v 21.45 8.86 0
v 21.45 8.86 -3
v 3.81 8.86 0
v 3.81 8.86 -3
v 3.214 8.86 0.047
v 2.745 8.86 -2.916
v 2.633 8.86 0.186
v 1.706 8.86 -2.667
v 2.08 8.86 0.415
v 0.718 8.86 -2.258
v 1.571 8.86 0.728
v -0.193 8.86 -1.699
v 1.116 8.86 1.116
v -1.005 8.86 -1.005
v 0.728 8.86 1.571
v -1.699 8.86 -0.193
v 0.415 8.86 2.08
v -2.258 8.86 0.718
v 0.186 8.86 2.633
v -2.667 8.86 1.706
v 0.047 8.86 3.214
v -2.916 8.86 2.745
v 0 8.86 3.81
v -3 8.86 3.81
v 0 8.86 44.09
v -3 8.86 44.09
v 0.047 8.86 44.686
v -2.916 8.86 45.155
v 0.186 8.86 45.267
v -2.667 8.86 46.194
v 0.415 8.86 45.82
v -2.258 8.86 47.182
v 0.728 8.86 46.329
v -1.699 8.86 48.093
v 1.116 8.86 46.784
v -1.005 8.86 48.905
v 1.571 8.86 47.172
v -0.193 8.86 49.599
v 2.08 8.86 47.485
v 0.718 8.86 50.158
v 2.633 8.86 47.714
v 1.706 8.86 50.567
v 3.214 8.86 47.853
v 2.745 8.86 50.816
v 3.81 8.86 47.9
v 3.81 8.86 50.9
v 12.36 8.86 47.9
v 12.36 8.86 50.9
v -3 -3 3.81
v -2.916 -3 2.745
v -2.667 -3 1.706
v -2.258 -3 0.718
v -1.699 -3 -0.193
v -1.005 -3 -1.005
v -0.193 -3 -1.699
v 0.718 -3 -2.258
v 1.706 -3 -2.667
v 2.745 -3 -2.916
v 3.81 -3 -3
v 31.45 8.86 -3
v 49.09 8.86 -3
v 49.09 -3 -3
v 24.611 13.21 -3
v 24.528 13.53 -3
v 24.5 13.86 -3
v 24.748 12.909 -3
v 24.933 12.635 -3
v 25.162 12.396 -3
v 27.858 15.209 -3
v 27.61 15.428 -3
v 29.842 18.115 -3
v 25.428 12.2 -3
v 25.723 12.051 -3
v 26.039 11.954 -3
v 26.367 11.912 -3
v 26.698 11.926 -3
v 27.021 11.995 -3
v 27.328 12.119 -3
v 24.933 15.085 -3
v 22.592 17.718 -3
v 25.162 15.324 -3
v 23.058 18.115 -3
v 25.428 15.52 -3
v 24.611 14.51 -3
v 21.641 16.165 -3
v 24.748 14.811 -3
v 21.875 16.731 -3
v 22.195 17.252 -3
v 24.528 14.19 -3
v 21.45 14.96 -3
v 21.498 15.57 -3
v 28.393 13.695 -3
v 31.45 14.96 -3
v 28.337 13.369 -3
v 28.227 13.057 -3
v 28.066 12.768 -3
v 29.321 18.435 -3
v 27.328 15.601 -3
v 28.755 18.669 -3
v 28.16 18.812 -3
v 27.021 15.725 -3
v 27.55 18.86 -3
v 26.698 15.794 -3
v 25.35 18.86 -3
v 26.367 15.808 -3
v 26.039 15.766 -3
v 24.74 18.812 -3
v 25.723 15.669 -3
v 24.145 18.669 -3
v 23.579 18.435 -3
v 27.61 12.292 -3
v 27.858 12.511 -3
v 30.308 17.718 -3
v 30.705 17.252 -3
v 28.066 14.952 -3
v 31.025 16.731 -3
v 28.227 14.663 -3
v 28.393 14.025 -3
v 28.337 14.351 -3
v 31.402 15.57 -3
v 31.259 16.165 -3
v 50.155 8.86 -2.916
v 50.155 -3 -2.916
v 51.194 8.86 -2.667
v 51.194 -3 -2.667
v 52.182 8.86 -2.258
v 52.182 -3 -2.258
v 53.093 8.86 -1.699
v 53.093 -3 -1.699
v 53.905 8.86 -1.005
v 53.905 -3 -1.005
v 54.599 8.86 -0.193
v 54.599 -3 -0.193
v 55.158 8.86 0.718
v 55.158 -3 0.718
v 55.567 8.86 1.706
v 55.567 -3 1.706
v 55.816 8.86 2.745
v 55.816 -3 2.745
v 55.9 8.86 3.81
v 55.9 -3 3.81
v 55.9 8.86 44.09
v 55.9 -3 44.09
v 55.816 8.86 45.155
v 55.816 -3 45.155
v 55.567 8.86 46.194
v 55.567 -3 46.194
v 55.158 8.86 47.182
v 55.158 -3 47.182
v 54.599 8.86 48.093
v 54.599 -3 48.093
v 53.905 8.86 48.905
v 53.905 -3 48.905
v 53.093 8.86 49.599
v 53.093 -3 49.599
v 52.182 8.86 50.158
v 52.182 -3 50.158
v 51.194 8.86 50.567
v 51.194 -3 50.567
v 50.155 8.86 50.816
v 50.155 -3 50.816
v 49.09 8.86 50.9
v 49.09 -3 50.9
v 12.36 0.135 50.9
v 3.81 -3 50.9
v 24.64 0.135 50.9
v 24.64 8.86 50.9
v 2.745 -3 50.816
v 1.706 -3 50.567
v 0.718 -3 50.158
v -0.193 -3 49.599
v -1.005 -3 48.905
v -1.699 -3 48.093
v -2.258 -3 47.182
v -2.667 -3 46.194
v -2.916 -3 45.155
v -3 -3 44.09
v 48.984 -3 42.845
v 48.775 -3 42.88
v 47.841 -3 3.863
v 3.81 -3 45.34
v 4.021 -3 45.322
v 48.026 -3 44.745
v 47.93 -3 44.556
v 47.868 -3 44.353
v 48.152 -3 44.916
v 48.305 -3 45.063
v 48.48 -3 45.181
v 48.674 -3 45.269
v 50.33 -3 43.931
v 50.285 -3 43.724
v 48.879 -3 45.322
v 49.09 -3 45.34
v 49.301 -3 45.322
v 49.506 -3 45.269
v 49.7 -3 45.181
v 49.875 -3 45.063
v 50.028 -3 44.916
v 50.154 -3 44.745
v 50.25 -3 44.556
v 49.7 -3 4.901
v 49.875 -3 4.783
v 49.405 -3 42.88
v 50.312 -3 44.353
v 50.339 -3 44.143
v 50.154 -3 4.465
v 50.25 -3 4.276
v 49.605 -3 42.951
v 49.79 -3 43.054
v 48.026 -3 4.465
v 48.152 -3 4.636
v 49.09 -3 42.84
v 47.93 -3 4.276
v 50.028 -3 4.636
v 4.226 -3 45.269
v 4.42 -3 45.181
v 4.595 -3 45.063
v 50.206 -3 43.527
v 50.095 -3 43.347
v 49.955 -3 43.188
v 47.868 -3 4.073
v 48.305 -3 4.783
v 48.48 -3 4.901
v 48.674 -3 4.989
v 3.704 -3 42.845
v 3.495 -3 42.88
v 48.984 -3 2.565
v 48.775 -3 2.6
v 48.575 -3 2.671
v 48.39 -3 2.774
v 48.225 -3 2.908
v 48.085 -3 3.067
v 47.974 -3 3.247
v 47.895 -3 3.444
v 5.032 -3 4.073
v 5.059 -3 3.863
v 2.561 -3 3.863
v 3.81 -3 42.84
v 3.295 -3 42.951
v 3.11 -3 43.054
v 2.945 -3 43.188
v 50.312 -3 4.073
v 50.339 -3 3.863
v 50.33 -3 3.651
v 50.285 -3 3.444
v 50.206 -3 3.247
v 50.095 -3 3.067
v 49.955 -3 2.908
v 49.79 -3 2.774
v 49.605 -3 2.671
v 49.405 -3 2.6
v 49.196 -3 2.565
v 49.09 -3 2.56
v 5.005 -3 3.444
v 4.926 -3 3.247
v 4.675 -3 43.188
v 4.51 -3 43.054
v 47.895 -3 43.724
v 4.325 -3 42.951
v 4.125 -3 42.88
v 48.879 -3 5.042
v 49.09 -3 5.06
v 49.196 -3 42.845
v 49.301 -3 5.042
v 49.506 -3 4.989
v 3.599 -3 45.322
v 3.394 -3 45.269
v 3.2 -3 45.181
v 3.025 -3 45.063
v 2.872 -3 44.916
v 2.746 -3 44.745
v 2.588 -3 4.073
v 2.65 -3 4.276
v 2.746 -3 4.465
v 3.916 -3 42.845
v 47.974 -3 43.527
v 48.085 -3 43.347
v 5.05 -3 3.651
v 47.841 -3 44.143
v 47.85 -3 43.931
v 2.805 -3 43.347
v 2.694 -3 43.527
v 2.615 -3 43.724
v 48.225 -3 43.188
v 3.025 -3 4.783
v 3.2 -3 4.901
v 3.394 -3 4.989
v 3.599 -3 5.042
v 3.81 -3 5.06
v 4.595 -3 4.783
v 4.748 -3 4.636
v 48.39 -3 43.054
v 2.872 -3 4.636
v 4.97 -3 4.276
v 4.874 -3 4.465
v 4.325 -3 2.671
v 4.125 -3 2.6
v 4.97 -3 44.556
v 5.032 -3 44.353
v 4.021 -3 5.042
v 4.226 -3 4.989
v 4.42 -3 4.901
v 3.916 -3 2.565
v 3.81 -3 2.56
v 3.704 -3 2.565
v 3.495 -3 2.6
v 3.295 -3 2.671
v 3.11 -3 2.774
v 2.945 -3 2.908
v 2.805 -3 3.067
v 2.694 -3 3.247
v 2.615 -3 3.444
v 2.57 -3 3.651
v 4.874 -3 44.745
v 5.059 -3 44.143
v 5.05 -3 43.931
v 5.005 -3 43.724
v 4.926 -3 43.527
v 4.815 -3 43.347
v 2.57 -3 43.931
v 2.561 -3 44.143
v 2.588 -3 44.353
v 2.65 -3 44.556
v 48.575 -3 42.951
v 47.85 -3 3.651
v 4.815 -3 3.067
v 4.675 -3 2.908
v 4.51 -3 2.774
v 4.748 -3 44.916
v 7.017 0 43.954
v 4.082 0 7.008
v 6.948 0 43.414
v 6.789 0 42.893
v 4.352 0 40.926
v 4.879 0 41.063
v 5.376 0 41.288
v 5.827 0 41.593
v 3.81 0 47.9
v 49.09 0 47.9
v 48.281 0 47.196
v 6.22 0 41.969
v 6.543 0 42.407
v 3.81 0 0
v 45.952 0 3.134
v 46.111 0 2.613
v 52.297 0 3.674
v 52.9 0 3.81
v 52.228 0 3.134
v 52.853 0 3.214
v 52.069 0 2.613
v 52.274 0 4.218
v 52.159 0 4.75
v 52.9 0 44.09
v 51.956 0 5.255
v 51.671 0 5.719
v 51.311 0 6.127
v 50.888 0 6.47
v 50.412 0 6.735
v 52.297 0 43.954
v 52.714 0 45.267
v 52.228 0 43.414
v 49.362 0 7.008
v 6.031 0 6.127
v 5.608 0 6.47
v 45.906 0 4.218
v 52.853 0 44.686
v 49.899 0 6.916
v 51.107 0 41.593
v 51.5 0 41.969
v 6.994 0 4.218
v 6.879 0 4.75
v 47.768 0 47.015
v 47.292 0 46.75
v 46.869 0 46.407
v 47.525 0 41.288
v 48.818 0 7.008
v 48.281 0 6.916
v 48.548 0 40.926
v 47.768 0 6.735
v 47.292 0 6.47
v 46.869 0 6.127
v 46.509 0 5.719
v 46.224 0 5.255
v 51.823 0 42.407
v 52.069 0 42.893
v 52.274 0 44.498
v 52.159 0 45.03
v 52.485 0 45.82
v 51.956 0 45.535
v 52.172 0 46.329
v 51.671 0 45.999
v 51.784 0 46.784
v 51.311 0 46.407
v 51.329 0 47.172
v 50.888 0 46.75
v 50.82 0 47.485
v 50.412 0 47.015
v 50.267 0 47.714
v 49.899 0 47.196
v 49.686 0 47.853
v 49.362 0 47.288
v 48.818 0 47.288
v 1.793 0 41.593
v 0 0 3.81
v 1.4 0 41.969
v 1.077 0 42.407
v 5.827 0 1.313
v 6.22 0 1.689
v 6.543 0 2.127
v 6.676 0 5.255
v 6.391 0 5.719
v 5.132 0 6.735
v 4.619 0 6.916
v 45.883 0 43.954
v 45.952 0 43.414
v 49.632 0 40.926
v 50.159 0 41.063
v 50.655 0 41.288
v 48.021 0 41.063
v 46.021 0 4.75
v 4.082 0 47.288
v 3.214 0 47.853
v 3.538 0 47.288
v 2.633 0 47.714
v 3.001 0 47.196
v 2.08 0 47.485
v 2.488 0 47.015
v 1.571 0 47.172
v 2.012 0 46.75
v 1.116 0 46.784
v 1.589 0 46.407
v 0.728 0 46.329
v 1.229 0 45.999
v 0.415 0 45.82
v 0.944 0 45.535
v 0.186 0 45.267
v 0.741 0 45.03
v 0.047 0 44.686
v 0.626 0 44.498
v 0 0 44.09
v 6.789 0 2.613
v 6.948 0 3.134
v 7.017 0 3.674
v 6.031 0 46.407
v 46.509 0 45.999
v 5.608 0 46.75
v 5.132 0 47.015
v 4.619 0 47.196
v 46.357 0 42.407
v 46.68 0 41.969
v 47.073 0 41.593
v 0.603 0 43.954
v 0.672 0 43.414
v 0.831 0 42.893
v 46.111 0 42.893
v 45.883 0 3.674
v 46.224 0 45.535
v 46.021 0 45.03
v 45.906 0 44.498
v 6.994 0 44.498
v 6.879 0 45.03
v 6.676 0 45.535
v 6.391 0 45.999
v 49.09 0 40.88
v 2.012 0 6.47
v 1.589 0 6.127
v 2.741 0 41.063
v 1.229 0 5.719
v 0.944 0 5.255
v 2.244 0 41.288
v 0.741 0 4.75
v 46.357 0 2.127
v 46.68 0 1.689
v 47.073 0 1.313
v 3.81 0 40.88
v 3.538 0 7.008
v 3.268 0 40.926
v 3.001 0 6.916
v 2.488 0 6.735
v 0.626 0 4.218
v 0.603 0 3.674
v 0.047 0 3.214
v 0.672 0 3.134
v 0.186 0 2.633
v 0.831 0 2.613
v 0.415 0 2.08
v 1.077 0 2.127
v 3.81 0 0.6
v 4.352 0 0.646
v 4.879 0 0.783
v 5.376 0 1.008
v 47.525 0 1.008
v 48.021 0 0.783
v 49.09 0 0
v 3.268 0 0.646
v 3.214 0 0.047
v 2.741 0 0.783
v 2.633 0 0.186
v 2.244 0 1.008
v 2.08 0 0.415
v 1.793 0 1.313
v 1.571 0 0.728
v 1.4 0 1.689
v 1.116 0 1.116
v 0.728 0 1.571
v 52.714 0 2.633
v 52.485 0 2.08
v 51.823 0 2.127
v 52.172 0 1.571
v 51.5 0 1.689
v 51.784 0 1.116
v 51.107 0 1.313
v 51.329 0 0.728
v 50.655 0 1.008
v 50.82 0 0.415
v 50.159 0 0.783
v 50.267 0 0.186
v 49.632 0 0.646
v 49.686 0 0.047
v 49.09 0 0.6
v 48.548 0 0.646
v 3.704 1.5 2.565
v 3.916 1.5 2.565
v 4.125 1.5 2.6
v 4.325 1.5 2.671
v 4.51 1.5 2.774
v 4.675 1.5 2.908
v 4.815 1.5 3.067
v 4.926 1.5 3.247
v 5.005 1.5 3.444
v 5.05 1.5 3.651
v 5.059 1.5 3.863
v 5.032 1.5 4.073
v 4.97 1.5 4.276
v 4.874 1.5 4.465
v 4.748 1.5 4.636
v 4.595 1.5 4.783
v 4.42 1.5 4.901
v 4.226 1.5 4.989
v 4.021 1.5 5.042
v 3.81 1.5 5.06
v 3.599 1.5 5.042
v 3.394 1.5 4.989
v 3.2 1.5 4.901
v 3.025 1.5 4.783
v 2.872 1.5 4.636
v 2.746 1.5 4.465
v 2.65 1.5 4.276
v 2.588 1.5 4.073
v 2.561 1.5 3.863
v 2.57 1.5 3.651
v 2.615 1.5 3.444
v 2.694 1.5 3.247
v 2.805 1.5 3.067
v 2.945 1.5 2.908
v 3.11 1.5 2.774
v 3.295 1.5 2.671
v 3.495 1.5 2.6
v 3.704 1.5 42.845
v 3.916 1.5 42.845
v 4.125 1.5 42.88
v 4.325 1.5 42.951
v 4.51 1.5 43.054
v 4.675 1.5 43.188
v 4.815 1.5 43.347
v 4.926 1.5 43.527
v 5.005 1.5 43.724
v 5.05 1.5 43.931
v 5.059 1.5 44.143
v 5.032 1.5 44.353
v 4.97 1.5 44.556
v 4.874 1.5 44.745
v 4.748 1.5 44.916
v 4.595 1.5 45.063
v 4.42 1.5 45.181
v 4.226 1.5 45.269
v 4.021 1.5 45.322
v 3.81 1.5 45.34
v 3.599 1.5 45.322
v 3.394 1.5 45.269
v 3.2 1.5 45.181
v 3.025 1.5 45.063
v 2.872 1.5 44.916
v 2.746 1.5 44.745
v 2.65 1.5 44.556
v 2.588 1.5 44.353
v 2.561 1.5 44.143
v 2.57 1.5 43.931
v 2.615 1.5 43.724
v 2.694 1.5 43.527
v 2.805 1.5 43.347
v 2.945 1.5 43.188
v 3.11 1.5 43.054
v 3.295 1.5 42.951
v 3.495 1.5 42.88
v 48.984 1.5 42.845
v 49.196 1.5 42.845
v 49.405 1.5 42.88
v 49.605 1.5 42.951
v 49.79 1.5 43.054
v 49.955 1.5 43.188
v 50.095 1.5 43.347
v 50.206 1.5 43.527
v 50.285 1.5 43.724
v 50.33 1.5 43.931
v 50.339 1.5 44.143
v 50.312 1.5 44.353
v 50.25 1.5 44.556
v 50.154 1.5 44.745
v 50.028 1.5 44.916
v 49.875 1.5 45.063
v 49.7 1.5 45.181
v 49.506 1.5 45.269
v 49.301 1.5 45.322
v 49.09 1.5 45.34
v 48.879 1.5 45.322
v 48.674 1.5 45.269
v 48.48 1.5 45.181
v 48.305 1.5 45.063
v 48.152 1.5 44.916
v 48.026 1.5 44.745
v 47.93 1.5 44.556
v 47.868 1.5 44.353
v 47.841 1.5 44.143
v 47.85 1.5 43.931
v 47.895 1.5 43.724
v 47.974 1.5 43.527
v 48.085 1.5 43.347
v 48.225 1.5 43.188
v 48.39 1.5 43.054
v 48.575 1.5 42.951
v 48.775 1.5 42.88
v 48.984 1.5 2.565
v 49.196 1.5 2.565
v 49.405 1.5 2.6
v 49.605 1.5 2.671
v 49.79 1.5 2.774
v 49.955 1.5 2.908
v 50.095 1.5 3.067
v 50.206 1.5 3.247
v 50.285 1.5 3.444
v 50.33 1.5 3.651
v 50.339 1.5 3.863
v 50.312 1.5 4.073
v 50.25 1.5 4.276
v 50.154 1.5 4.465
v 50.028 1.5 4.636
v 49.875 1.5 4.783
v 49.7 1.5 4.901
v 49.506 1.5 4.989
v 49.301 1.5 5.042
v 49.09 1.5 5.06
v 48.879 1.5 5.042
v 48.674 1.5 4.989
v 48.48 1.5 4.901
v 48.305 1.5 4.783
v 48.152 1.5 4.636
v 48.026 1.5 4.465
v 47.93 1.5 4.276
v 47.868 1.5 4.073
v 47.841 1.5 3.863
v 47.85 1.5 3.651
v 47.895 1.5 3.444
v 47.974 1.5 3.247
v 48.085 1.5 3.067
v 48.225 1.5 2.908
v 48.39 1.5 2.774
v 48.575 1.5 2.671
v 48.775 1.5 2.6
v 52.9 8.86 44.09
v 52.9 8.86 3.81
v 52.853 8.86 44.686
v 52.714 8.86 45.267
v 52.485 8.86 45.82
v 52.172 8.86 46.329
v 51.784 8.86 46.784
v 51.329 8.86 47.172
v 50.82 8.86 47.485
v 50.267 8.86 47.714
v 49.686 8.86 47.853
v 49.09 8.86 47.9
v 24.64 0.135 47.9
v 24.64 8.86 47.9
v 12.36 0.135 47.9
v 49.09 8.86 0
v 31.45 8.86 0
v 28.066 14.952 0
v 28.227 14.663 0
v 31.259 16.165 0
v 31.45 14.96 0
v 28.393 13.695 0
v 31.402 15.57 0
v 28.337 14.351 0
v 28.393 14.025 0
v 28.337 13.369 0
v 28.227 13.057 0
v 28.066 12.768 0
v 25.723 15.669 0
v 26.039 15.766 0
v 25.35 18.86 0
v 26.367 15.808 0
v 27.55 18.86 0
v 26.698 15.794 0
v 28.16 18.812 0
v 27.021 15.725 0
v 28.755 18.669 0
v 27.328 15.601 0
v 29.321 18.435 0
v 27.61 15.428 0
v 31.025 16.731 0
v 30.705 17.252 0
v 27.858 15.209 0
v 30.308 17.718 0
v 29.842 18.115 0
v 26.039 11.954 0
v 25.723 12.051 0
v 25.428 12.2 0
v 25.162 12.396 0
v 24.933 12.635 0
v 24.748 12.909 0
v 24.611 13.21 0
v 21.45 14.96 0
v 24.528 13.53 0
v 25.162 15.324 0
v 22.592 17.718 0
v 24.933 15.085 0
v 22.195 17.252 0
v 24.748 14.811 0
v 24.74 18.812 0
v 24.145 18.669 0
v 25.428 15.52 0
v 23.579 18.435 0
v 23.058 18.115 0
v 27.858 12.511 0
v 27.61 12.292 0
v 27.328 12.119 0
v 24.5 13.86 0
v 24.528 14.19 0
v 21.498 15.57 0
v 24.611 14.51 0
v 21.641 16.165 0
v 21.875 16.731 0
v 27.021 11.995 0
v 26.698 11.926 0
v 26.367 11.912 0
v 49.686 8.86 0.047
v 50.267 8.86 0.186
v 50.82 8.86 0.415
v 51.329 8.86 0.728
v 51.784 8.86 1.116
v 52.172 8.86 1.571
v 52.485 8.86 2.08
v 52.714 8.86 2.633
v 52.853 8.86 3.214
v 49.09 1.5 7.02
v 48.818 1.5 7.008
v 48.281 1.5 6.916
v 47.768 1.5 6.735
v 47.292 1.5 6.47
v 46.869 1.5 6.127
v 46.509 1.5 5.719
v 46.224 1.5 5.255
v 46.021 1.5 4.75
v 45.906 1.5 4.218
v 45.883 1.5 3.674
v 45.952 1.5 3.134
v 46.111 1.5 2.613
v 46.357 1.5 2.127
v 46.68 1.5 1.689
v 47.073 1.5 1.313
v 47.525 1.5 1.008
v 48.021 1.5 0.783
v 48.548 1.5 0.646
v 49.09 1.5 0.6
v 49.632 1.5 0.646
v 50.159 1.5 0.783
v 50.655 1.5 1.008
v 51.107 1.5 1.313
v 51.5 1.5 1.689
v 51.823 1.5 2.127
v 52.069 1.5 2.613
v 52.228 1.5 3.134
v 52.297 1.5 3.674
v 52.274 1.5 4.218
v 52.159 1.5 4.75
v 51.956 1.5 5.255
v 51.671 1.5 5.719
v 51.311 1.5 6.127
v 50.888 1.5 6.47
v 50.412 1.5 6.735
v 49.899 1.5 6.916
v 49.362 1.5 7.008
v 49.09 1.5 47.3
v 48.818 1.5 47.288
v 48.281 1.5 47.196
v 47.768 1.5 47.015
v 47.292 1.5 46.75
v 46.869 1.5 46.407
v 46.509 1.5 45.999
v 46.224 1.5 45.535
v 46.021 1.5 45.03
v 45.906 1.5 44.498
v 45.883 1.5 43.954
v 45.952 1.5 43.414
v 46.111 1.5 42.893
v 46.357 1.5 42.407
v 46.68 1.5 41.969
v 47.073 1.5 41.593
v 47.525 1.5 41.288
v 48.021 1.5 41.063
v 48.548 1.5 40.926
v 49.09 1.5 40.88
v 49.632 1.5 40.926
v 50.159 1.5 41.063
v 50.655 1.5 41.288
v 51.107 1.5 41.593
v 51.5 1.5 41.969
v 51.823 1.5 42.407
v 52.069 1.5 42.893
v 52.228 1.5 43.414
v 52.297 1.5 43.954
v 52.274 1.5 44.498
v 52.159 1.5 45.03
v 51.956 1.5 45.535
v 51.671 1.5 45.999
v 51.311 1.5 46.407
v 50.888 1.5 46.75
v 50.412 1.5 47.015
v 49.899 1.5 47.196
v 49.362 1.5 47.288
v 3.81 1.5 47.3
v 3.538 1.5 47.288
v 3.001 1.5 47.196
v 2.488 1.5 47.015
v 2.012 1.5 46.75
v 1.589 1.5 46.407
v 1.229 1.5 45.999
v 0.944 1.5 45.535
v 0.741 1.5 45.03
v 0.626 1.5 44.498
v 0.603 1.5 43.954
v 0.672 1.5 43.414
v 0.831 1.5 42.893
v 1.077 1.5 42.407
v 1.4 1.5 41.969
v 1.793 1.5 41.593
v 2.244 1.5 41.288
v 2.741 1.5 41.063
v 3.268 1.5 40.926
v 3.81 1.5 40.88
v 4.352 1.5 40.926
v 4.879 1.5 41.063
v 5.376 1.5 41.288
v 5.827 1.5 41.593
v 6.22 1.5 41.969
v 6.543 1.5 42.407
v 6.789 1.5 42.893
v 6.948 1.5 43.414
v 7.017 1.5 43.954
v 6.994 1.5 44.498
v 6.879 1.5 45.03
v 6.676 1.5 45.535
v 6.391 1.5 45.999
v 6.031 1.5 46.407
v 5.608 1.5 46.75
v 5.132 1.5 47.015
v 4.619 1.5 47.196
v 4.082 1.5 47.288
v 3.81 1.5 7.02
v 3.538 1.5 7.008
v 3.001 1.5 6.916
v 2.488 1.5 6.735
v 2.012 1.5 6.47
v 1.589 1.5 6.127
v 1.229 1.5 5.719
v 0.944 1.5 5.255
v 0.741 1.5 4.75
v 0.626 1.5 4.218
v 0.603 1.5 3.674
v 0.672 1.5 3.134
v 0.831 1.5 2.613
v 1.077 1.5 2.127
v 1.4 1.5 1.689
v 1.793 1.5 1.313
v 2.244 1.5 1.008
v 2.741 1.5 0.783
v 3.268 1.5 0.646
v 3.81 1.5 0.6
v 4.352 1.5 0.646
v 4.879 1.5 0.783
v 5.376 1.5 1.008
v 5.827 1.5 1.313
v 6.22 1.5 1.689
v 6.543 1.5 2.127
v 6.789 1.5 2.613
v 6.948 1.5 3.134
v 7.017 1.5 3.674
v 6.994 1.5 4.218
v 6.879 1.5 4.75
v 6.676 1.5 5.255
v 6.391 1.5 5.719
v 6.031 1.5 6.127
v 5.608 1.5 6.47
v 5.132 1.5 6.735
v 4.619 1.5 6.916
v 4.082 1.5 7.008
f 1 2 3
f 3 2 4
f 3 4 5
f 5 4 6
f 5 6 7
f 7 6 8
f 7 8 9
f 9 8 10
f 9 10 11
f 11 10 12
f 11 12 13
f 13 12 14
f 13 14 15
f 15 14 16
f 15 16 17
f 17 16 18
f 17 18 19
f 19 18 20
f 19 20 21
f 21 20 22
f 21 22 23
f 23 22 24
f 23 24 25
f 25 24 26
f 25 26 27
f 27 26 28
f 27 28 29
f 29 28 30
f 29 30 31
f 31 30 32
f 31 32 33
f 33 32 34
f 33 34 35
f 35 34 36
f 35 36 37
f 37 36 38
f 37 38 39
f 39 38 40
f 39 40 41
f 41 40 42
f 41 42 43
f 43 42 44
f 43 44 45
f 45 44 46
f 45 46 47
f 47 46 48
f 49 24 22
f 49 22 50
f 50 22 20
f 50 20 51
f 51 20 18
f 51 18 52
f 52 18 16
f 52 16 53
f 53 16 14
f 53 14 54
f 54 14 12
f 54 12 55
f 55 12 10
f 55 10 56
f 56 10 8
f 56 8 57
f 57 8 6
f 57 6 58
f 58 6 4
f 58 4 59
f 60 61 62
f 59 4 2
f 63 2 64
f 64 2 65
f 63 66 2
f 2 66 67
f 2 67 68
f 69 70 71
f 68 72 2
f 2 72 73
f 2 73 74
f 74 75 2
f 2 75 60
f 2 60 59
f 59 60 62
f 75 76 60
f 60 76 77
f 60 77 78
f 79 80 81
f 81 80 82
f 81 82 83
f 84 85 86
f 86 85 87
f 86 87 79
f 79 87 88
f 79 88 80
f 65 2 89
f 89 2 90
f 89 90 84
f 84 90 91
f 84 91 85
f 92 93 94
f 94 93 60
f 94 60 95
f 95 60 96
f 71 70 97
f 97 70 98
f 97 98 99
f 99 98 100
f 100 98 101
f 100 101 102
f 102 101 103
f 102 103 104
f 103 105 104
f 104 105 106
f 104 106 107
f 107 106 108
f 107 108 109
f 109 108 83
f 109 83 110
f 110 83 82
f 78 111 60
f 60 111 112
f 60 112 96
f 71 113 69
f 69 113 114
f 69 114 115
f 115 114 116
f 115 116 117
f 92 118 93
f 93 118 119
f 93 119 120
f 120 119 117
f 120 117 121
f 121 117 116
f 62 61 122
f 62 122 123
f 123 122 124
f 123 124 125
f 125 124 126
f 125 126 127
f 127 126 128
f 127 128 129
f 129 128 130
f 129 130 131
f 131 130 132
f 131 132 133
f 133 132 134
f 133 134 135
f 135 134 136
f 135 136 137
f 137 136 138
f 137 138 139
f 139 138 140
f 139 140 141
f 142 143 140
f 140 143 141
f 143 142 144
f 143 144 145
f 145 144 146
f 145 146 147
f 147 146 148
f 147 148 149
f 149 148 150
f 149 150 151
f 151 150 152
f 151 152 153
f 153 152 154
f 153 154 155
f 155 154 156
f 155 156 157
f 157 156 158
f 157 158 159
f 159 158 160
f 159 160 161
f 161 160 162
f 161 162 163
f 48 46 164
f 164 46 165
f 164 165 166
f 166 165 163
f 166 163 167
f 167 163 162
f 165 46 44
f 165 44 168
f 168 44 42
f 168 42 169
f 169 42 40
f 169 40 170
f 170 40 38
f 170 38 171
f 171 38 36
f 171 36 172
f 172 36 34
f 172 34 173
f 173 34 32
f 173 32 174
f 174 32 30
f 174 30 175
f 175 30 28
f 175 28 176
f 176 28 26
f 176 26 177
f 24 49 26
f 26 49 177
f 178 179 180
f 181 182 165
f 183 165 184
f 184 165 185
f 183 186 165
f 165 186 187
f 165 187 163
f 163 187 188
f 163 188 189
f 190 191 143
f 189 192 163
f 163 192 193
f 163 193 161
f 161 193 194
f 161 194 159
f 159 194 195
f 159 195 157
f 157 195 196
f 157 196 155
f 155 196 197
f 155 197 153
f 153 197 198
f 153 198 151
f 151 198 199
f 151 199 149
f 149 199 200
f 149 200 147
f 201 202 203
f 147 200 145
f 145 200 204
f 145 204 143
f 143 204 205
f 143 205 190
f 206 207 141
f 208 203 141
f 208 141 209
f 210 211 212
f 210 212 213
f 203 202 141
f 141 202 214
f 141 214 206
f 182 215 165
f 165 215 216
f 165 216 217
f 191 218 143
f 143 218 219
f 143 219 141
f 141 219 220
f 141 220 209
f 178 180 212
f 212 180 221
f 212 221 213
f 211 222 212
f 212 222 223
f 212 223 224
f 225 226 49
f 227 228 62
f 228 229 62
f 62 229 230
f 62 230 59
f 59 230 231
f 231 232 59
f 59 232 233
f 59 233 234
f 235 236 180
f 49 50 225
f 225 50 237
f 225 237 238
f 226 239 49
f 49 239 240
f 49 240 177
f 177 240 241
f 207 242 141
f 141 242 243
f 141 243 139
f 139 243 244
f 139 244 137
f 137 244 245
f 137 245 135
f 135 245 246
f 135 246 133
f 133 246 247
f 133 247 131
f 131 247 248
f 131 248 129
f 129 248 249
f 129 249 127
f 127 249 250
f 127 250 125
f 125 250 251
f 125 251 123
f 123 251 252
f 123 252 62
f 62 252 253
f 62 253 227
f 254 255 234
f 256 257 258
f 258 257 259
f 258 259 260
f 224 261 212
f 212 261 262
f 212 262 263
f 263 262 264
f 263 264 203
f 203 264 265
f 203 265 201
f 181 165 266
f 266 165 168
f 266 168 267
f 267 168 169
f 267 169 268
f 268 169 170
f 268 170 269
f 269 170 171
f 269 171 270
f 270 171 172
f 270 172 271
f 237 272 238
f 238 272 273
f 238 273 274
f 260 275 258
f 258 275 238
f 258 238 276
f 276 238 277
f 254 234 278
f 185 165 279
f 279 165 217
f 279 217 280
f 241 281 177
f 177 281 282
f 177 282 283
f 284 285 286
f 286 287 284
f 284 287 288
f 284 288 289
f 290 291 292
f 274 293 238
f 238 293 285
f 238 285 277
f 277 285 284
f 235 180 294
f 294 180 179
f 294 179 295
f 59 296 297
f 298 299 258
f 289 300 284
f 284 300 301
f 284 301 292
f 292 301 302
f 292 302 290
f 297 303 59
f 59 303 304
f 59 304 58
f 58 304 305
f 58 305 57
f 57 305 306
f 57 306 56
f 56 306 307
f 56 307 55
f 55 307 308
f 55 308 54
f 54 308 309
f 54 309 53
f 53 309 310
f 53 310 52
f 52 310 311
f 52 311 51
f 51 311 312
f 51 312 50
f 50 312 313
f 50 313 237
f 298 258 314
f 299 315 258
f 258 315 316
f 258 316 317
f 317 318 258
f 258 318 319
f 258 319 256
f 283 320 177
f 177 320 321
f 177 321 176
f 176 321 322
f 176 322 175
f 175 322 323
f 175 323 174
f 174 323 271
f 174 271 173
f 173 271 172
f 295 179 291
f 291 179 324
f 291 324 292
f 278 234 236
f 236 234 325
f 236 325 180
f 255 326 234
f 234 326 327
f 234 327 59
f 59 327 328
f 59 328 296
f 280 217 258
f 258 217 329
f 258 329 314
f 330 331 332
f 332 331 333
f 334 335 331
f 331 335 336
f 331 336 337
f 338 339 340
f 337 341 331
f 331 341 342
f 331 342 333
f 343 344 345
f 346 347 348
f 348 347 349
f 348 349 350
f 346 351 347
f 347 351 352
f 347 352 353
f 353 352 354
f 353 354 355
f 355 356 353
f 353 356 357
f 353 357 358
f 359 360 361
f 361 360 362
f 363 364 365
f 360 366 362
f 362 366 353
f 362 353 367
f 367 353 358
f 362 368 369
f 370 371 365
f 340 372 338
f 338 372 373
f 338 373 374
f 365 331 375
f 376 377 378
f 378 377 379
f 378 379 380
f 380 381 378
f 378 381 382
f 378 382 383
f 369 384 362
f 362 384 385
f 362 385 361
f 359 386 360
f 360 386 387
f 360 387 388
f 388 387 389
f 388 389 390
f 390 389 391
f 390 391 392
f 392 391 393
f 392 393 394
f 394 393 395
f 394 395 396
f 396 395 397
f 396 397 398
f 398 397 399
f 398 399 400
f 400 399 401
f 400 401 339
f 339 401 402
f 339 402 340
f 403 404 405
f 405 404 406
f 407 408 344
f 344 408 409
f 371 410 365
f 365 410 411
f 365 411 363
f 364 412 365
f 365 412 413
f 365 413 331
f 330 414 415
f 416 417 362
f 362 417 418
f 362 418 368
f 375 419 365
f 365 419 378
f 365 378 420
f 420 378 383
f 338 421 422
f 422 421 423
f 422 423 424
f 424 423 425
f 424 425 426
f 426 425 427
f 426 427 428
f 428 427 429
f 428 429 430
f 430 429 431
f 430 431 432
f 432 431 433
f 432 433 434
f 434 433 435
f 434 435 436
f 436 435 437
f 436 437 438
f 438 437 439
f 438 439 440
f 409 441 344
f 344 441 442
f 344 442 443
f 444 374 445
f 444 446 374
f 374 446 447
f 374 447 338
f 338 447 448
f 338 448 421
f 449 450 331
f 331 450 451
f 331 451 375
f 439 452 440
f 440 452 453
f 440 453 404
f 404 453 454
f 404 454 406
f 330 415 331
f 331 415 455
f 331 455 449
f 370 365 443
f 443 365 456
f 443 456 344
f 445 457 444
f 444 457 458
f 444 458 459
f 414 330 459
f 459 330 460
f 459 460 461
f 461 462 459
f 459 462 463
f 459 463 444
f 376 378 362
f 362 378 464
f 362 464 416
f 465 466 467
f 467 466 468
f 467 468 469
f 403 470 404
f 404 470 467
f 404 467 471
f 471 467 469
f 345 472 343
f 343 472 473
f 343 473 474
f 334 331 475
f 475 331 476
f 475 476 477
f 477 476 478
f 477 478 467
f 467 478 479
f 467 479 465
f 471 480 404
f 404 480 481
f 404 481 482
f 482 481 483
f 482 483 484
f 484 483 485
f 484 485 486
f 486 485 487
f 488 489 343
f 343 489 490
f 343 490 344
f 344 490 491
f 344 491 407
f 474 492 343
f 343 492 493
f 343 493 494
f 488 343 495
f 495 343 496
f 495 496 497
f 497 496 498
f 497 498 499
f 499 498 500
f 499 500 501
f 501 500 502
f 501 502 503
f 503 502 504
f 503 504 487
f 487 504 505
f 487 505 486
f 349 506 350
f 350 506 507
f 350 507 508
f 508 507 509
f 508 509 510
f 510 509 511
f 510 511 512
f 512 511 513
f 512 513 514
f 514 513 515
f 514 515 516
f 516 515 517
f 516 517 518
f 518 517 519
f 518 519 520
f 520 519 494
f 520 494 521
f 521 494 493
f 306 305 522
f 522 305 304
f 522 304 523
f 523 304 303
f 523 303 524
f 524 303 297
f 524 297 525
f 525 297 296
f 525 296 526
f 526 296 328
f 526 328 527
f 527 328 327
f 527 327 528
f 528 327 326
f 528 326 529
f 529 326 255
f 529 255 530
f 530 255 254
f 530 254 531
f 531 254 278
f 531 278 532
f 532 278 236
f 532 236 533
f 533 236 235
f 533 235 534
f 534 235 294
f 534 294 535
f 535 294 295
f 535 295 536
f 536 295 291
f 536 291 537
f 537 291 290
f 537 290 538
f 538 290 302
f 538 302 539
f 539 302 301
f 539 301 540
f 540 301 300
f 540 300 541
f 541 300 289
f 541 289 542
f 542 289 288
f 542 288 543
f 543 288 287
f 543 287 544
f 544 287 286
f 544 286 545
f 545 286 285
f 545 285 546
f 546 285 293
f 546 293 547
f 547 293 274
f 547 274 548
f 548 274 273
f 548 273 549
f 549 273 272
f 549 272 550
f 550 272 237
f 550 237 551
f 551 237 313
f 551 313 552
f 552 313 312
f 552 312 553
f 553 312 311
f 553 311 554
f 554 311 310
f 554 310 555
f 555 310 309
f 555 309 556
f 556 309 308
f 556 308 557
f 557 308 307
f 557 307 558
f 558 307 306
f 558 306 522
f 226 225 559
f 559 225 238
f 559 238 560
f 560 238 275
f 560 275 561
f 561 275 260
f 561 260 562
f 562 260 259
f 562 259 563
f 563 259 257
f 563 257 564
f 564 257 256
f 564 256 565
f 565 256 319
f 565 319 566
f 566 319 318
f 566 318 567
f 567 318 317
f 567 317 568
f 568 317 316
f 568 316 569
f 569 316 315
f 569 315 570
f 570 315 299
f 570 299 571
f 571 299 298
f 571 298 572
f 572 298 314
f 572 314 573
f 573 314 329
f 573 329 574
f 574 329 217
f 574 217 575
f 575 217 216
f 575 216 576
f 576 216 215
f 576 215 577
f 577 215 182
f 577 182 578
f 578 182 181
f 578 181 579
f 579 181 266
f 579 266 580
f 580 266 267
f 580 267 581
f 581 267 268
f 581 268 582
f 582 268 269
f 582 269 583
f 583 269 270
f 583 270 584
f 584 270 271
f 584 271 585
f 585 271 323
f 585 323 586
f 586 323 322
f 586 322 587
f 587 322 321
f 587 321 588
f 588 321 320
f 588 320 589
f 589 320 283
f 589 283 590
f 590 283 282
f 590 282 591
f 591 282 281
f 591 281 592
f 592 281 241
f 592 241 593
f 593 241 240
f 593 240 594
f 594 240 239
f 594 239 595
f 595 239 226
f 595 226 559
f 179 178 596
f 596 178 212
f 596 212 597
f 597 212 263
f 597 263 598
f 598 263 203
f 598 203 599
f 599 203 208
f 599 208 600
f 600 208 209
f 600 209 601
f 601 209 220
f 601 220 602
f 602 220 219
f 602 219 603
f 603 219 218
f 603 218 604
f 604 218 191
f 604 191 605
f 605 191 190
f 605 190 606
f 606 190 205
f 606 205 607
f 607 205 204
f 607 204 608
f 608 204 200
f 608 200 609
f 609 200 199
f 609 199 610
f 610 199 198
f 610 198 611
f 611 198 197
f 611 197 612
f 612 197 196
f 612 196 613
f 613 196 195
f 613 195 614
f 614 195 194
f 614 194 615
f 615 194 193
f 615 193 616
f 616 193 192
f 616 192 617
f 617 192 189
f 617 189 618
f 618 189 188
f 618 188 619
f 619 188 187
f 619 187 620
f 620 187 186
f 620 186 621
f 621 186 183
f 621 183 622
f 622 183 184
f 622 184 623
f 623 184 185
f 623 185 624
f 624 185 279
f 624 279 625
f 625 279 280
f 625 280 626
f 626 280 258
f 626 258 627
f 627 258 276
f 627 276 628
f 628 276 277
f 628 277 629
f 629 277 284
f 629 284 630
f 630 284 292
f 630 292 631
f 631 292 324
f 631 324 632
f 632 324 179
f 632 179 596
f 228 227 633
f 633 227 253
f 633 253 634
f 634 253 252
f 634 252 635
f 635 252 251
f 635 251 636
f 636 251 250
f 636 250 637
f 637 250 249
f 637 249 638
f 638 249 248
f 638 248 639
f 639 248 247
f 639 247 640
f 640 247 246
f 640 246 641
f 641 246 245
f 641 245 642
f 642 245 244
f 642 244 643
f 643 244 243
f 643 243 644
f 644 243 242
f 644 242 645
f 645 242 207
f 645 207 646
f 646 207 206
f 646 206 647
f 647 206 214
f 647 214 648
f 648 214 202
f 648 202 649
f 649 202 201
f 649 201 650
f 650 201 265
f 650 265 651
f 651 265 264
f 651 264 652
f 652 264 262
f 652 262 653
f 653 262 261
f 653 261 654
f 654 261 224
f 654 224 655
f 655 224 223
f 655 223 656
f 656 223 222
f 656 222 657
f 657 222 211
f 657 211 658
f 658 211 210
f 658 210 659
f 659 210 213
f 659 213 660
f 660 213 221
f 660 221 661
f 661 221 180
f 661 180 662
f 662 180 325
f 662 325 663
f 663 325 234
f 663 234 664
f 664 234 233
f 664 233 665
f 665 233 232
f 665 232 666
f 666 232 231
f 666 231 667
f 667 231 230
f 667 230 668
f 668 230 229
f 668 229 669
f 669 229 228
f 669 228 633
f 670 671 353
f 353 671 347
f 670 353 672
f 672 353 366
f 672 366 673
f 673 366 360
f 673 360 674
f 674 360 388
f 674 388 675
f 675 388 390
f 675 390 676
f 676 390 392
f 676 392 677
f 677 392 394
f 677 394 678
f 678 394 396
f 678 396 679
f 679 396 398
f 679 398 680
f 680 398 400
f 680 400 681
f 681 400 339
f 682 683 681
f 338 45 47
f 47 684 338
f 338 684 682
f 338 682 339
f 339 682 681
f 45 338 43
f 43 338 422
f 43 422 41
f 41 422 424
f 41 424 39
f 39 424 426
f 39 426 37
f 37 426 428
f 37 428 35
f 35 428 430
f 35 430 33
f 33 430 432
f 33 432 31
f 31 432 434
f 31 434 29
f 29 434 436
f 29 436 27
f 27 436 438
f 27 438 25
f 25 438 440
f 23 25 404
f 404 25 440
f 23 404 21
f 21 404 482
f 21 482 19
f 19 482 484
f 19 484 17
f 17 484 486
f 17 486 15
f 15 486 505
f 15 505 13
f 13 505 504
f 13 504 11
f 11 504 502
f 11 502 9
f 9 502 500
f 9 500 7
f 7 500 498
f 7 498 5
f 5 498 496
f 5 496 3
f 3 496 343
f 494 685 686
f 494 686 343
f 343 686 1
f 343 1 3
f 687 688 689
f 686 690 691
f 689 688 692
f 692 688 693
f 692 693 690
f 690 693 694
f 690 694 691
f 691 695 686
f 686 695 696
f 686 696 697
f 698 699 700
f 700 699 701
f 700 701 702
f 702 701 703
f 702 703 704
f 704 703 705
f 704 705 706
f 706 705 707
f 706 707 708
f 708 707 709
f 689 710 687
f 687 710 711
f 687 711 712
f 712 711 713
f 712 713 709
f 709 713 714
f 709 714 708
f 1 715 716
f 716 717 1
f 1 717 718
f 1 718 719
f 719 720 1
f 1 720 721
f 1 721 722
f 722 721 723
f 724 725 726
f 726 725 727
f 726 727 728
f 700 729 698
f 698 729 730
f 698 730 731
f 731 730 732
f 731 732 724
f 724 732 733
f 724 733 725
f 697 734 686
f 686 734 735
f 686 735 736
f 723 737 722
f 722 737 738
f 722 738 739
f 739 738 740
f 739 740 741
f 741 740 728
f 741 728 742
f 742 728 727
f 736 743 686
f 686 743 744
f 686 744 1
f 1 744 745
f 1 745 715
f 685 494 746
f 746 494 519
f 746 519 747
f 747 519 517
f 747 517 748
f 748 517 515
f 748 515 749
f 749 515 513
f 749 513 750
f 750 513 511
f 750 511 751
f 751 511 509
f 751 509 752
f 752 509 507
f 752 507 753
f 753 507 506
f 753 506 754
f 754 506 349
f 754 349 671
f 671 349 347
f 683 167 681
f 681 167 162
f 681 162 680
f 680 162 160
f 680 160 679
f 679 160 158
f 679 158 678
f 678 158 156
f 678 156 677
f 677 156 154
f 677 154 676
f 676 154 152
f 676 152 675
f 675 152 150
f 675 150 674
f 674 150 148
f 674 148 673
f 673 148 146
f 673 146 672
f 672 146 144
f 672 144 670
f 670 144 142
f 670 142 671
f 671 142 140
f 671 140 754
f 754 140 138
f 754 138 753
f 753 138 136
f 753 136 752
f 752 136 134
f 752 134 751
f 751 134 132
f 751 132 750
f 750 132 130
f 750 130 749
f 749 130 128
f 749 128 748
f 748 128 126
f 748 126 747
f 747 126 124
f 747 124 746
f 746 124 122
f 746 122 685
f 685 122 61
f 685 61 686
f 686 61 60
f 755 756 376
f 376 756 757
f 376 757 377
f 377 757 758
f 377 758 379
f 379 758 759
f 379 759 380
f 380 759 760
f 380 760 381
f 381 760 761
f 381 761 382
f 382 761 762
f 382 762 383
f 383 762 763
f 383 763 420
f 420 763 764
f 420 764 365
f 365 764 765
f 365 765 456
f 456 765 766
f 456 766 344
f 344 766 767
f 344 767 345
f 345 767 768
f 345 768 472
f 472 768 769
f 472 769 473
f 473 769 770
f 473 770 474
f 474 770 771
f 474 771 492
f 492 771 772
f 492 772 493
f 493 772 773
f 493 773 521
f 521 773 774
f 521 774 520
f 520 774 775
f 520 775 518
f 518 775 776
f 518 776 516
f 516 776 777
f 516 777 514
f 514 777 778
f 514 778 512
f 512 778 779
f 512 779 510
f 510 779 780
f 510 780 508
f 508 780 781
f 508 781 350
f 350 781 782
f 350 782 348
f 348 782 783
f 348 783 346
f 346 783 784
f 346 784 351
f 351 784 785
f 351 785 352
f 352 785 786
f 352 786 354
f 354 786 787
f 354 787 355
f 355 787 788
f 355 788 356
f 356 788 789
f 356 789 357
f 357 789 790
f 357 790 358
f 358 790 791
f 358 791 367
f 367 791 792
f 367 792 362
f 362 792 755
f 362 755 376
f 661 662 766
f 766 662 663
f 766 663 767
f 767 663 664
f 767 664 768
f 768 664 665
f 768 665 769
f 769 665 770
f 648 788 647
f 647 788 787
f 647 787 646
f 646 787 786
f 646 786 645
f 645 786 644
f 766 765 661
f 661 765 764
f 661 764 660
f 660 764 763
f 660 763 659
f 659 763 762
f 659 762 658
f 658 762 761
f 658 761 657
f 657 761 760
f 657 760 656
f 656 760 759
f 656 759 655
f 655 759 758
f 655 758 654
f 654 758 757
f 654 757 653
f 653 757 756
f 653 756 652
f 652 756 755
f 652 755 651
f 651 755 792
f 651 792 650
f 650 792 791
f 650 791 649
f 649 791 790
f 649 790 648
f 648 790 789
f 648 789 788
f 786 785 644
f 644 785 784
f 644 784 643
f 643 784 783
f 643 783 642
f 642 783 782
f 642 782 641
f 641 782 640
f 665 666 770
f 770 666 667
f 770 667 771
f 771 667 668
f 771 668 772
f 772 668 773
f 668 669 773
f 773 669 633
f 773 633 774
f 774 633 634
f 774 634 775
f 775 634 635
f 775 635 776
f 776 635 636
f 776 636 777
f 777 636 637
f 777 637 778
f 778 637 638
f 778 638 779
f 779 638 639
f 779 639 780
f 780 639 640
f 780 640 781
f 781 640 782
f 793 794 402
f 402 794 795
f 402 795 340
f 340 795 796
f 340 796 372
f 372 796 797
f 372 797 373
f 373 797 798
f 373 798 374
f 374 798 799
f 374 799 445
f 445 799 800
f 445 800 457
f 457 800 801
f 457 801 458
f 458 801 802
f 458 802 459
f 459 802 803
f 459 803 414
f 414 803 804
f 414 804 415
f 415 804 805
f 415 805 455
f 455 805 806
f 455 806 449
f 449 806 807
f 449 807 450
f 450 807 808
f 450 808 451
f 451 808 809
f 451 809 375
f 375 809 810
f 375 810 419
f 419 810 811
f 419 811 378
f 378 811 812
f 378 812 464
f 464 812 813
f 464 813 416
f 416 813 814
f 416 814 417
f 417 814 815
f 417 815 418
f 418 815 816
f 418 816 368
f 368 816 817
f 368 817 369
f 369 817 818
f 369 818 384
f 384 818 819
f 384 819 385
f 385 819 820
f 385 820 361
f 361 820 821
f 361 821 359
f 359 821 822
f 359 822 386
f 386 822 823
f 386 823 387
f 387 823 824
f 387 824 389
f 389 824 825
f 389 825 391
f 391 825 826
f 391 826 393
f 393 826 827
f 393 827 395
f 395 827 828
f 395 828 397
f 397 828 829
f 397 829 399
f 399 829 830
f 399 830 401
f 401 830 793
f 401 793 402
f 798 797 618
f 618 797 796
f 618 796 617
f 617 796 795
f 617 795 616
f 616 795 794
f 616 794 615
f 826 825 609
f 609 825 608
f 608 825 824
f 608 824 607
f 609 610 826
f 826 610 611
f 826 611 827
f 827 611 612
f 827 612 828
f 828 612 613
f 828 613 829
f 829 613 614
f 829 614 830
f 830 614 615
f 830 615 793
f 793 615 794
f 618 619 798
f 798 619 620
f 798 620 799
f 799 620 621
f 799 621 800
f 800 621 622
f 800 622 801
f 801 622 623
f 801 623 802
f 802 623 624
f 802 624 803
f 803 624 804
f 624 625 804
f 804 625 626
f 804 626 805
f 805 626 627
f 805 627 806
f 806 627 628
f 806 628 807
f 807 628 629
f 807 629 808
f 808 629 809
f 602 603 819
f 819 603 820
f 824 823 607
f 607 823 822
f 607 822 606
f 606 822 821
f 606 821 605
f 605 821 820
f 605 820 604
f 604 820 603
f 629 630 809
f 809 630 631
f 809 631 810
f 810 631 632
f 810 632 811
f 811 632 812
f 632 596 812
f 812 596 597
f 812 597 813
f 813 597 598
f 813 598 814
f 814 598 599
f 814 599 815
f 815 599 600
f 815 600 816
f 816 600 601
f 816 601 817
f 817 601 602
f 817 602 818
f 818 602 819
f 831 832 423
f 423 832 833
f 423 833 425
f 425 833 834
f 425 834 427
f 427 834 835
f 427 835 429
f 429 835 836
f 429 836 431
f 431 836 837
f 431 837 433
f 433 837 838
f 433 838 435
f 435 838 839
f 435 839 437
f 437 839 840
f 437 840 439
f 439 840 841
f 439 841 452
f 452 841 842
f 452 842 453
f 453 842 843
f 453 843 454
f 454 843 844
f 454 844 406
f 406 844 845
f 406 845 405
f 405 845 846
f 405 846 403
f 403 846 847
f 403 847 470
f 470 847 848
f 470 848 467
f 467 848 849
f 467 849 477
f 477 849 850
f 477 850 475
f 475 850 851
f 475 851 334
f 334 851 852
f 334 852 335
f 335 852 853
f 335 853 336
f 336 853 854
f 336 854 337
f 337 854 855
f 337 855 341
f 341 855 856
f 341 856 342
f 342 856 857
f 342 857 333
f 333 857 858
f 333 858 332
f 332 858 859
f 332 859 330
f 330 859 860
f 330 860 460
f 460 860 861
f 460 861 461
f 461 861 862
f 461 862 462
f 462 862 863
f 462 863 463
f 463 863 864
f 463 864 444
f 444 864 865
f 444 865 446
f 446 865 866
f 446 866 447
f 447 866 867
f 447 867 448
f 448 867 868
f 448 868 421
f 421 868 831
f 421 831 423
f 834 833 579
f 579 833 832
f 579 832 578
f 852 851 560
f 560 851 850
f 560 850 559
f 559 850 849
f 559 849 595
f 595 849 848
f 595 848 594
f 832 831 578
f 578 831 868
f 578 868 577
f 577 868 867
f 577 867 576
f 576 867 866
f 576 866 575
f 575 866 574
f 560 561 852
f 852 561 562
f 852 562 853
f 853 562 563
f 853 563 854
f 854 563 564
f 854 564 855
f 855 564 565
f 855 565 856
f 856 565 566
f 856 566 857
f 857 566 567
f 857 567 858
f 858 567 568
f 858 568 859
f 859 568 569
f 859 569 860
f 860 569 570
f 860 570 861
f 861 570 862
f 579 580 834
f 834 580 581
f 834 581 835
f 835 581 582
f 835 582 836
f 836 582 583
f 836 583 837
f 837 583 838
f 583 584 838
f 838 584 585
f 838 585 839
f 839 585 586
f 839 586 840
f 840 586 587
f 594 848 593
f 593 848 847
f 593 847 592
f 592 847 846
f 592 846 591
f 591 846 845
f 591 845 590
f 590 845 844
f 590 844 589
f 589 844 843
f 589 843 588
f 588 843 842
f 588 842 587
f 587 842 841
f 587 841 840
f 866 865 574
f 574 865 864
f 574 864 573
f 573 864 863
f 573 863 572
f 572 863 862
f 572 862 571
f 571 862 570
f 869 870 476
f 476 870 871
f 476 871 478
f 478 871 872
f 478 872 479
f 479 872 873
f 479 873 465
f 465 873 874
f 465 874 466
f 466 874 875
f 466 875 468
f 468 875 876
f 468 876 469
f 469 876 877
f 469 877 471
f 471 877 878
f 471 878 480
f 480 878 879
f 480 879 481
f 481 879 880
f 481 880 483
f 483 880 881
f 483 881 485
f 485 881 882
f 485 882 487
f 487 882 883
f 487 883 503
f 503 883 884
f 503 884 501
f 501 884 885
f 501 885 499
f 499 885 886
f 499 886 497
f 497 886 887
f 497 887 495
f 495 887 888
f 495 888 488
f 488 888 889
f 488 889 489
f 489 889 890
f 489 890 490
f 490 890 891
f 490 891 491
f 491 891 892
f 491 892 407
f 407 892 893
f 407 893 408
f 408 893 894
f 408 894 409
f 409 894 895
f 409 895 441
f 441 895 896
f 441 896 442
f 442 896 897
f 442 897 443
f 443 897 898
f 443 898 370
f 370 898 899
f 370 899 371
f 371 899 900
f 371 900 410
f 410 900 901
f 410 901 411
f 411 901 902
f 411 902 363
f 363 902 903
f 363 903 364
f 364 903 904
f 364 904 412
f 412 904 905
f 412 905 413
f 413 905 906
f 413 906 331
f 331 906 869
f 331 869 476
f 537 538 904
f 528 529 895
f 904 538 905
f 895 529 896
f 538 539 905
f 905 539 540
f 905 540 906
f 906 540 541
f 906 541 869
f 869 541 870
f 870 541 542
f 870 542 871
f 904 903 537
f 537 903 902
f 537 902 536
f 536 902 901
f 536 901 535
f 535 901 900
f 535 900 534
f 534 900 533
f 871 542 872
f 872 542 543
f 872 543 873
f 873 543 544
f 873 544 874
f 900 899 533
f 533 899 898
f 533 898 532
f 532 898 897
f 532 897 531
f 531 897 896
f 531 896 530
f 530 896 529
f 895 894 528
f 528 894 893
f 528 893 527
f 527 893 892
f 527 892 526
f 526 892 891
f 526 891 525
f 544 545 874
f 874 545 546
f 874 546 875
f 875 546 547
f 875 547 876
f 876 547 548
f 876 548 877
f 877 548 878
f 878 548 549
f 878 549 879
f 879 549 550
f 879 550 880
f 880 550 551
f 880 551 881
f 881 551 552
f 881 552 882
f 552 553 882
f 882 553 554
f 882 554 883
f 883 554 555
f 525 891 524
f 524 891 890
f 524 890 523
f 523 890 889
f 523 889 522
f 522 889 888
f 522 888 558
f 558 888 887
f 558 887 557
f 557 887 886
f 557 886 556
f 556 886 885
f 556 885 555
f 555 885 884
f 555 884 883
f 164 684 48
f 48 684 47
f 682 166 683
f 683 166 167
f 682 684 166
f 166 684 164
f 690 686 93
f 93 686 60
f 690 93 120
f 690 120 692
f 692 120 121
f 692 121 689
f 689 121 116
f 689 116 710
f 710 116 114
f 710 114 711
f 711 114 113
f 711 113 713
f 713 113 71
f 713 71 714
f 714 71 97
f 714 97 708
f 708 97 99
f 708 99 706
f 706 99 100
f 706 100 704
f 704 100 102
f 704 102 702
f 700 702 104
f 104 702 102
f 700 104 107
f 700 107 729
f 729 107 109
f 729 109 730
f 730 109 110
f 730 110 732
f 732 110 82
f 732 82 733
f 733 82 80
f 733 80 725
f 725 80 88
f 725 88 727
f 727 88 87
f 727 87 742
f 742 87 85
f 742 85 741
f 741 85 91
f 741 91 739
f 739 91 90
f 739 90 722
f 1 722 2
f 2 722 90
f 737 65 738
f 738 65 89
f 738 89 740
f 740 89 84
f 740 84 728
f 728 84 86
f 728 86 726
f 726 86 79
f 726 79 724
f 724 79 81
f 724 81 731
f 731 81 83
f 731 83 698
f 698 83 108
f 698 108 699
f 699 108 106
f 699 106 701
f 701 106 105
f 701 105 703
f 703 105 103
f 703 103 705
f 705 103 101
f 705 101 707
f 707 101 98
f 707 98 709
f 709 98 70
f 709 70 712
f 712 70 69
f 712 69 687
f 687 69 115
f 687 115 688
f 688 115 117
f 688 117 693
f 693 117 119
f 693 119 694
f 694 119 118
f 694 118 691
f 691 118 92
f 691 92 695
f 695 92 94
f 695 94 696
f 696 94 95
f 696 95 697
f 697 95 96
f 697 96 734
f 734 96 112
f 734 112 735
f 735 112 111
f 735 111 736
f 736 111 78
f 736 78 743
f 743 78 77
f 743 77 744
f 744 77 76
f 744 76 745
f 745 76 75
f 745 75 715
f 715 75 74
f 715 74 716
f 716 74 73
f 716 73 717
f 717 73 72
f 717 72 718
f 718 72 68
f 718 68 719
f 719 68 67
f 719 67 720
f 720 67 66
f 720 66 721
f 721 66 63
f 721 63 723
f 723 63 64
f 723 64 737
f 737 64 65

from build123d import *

# Parameters (mm, degrees)
BOSS_EXTRUDE1_DEPTH = 3
CUT_EXTRUDE1_REACH  = 77.661
SKETCH1_3_R         = 1.25
BOSS_EXTRUDE2_START = 8.86
BOSS_EXTRUDE2_DEPTH = 8.86
BOSS_EXTRUDE3_START = 1.5
SKETCH1_5_R         = 3.21
SKETCH1_5_R_2       = 1.25
BOSS_EXTRUDE3_DEPTH = 1.5
SKETCH2_W           = 12.28
SKETCH2_H           = 8.73
CUT_EXTRUDE2_DEPTH  = 3
SKETCH5_R           = 1.95
BOSS_EXTRUDE5_DEPTH = 3


with BuildPart() as part:
    # Sketch1 → Boss-Extrude1 (new body)
    with BuildSketch(Plane(origin=(0, 0, 0), x_dir=(1, 0, 0), z_dir=(0, 1, 0))):
        with BuildLine():
            Line((3.81, 3), (49.09, 3))
            ThreePointArc((49.09, 3), (53.90539718, 1.00539718), (55.9, -3.81))
            Line((55.9, -3.81), (55.9, -44.09))
            ThreePointArc((55.9, -44.09), (53.90539718, -48.90539718), (49.09, -50.9))
            Line((49.09, -50.9), (3.81, -50.9))
            ThreePointArc((3.81, -50.9), (-1.00539718, -48.90539718), (-3, -44.09))
            Line((-3, -44.09), (-3, -3.81))
            ThreePointArc((-3, -3.81), (-1.00539718, 1.00539718), (3.81, 3))
        make_face()
    extrude(amount=-BOSS_EXTRUDE1_DEPTH)

    # Sketch1<3> → Cut-Extrude1 (cut, up to next)
    with BuildSketch(Plane(origin=(0, 0, 0), x_dir=(1, 0, 0), z_dir=(0, 1, 0)), mode=Mode.PRIVATE) as cut_extrude1_sk1:
        with Locations((49.09, -44.09)):
            Circle(SKETCH1_3_R)
    cut_extrude1_tool1 = extrude(cut_extrude1_sk1.sketch, amount=-CUT_EXTRUDE1_REACH, mode=Mode.PRIVATE) & part.part
    # Sketch1<3> → Cut-Extrude1 (cut, up to next)
    with BuildSketch(Plane(origin=(0, 0, 0), x_dir=(1, 0, 0), z_dir=(0, 1, 0)), mode=Mode.PRIVATE) as cut_extrude1_sk2:
        with Locations((3.81, -44.09)):
            Circle(SKETCH1_3_R)
    cut_extrude1_tool2 = extrude(cut_extrude1_sk2.sketch, amount=-CUT_EXTRUDE1_REACH, mode=Mode.PRIVATE) & part.part
    # Sketch1<3> → Cut-Extrude1 (cut, up to next)
    with BuildSketch(Plane(origin=(0, 0, 0), x_dir=(1, 0, 0), z_dir=(0, 1, 0)), mode=Mode.PRIVATE) as cut_extrude1_sk3:
        with Locations((3.81, -3.81)):
            Circle(SKETCH1_3_R)
    cut_extrude1_tool3 = extrude(cut_extrude1_sk3.sketch, amount=-CUT_EXTRUDE1_REACH, mode=Mode.PRIVATE) & part.part
    # Sketch1<3> → Cut-Extrude1 (cut, up to next)
    with BuildSketch(Plane(origin=(0, 0, 0), x_dir=(1, 0, 0), z_dir=(0, 1, 0)), mode=Mode.PRIVATE) as cut_extrude1_sk4:
        with Locations((49.09, -3.81)):
            Circle(SKETCH1_3_R)
    cut_extrude1_tool4 = extrude(cut_extrude1_sk4.sketch, amount=-CUT_EXTRUDE1_REACH, mode=Mode.PRIVATE) & part.part
    add(cut_extrude1_tool1.solids().sort_by_distance((49.09, 0, 44.09))[0], mode=Mode.SUBTRACT)
    add(cut_extrude1_tool2.solids().sort_by_distance((3.81, 0, 44.09))[0], mode=Mode.SUBTRACT)
    add(cut_extrude1_tool3.solids().sort_by_distance((3.81, 0, 3.81))[0], mode=Mode.SUBTRACT)
    add(cut_extrude1_tool4.solids().sort_by_distance((49.09, 0, 3.81))[0], mode=Mode.SUBTRACT)

    # Sketch1<4> → Boss-Extrude2 (add)
    with BuildSketch(Plane(origin=(0, 0, 0), x_dir=(1, 0, 0), z_dir=(0, 1, 0)).offset(BOSS_EXTRUDE2_START)):
        with BuildLine():
            Line((49.09, 3), (3.81, 3))
            ThreePointArc((3.81, 3), (-1.00539718, 1.00539718), (-3, -3.81))
            Line((-3, -3.81), (-3, -44.09))
            ThreePointArc((-3, -44.09), (-1.00539718, -48.90539718), (3.81, -50.9))
            Line((3.81, -50.9), (49.09, -50.9))
            ThreePointArc((49.09, -50.9), (53.90539718, -48.90539718), (55.9, -44.09))
            Line((55.9, -44.09), (55.9, -3.81))
            ThreePointArc((55.9, -3.81), (53.90539718, 1.00539718), (49.09, 3))
        make_face()
        with BuildLine():
            ThreePointArc((0, -3.81), (1.115923164, -1.115923164), (3.81, 0))
            Line((3.81, 0), (49.09, 0))
            ThreePointArc((49.09, 0), (51.784076836, -1.115923164), (52.9, -3.81))
            Line((52.9, -3.81), (52.9, -44.09))
            ThreePointArc((52.9, -44.09), (51.784076836, -46.784076836), (49.09, -47.9))
            Line((49.09, -47.9), (3.81, -47.9))
            ThreePointArc((3.81, -47.9), (1.115923164, -46.784076836), (0, -44.09))
            Line((0, -44.09), (0, -3.81))
        make_face(mode=Mode.SUBTRACT)
    extrude(amount=-BOSS_EXTRUDE2_DEPTH)

    # Sketch1<5> → Boss-Extrude3 (add)
    # profile 1 of 4: a face of its own
    with BuildSketch(Plane(origin=(0, 0, 0), x_dir=(1, 0, 0), z_dir=(0, 1, 0)).offset(BOSS_EXTRUDE3_START)):
        with Locations((3.81, -3.81)):
            Circle(SKETCH1_5_R)
        with Locations((3.81, -3.81)):
            Circle(SKETCH1_5_R_2, mode=Mode.SUBTRACT)
    # profile 2 of 4: a face of its own
    with BuildSketch(Plane(origin=(0, 0, 0), x_dir=(1, 0, 0), z_dir=(0, 1, 0)).offset(BOSS_EXTRUDE3_START)):
        with Locations((49.09, -3.81)):
            Circle(SKETCH1_5_R)
        with Locations((49.09, -3.81)):
            Circle(SKETCH1_5_R_2, mode=Mode.SUBTRACT)
    # profile 3 of 4: a face of its own
    with BuildSketch(Plane(origin=(0, 0, 0), x_dir=(1, 0, 0), z_dir=(0, 1, 0)).offset(BOSS_EXTRUDE3_START)):
        with Locations((49.09, -44.09)):
            Circle(SKETCH1_5_R)
        with Locations((49.09, -44.09)):
            Circle(SKETCH1_5_R_2, mode=Mode.SUBTRACT)
    # profile 4 of 4: a face of its own
    with BuildSketch(Plane(origin=(0, 0, 0), x_dir=(1, 0, 0), z_dir=(0, 1, 0)).offset(BOSS_EXTRUDE3_START)):
        with Locations((3.81, -44.09)):
            Circle(SKETCH1_5_R)
        with Locations((3.81, -44.09)):
            Circle(SKETCH1_5_R_2, mode=Mode.SUBTRACT)
    extrude(amount=-BOSS_EXTRUDE3_DEPTH)

    # Sketch2 → Cut-Extrude2 (cut)
    with BuildSketch(Plane.XY.offset(50.9)):
        with Locations((18.5, 4.5)):
            Rectangle(SKETCH2_W, SKETCH2_H)
    extrude(amount=-CUT_EXTRUDE2_DEPTH, mode=Mode.SUBTRACT)

    # Sketch5 → Boss-Extrude5 (add)
    with BuildSketch(Plane(origin=(0, 0, -3), x_dir=(-1, 0, 0), z_dir=(0, 0, -1))):
        with BuildLine():
            Line((-31.45, 8.86), (-21.45, 8.86))
            Line((-21.45, 8.86), (-21.45, 14.96))
            ThreePointArc((-21.45, 14.96), (-22.592283553, 17.717716447), (-25.35, 18.86))
            Line((-25.35, 18.86), (-27.55, 18.86))
            ThreePointArc((-27.55, 18.86), (-30.307716447, 17.717716447), (-31.45, 14.96))
            Line((-31.45, 14.96), (-31.45, 8.86))
        make_face()
        with Locations((-26.45, 13.86)):
            Circle(SKETCH5_R, mode=Mode.SUBTRACT)
    extrude(amount=-BOSS_EXTRUDE5_DEPTH)


solid = part.part
